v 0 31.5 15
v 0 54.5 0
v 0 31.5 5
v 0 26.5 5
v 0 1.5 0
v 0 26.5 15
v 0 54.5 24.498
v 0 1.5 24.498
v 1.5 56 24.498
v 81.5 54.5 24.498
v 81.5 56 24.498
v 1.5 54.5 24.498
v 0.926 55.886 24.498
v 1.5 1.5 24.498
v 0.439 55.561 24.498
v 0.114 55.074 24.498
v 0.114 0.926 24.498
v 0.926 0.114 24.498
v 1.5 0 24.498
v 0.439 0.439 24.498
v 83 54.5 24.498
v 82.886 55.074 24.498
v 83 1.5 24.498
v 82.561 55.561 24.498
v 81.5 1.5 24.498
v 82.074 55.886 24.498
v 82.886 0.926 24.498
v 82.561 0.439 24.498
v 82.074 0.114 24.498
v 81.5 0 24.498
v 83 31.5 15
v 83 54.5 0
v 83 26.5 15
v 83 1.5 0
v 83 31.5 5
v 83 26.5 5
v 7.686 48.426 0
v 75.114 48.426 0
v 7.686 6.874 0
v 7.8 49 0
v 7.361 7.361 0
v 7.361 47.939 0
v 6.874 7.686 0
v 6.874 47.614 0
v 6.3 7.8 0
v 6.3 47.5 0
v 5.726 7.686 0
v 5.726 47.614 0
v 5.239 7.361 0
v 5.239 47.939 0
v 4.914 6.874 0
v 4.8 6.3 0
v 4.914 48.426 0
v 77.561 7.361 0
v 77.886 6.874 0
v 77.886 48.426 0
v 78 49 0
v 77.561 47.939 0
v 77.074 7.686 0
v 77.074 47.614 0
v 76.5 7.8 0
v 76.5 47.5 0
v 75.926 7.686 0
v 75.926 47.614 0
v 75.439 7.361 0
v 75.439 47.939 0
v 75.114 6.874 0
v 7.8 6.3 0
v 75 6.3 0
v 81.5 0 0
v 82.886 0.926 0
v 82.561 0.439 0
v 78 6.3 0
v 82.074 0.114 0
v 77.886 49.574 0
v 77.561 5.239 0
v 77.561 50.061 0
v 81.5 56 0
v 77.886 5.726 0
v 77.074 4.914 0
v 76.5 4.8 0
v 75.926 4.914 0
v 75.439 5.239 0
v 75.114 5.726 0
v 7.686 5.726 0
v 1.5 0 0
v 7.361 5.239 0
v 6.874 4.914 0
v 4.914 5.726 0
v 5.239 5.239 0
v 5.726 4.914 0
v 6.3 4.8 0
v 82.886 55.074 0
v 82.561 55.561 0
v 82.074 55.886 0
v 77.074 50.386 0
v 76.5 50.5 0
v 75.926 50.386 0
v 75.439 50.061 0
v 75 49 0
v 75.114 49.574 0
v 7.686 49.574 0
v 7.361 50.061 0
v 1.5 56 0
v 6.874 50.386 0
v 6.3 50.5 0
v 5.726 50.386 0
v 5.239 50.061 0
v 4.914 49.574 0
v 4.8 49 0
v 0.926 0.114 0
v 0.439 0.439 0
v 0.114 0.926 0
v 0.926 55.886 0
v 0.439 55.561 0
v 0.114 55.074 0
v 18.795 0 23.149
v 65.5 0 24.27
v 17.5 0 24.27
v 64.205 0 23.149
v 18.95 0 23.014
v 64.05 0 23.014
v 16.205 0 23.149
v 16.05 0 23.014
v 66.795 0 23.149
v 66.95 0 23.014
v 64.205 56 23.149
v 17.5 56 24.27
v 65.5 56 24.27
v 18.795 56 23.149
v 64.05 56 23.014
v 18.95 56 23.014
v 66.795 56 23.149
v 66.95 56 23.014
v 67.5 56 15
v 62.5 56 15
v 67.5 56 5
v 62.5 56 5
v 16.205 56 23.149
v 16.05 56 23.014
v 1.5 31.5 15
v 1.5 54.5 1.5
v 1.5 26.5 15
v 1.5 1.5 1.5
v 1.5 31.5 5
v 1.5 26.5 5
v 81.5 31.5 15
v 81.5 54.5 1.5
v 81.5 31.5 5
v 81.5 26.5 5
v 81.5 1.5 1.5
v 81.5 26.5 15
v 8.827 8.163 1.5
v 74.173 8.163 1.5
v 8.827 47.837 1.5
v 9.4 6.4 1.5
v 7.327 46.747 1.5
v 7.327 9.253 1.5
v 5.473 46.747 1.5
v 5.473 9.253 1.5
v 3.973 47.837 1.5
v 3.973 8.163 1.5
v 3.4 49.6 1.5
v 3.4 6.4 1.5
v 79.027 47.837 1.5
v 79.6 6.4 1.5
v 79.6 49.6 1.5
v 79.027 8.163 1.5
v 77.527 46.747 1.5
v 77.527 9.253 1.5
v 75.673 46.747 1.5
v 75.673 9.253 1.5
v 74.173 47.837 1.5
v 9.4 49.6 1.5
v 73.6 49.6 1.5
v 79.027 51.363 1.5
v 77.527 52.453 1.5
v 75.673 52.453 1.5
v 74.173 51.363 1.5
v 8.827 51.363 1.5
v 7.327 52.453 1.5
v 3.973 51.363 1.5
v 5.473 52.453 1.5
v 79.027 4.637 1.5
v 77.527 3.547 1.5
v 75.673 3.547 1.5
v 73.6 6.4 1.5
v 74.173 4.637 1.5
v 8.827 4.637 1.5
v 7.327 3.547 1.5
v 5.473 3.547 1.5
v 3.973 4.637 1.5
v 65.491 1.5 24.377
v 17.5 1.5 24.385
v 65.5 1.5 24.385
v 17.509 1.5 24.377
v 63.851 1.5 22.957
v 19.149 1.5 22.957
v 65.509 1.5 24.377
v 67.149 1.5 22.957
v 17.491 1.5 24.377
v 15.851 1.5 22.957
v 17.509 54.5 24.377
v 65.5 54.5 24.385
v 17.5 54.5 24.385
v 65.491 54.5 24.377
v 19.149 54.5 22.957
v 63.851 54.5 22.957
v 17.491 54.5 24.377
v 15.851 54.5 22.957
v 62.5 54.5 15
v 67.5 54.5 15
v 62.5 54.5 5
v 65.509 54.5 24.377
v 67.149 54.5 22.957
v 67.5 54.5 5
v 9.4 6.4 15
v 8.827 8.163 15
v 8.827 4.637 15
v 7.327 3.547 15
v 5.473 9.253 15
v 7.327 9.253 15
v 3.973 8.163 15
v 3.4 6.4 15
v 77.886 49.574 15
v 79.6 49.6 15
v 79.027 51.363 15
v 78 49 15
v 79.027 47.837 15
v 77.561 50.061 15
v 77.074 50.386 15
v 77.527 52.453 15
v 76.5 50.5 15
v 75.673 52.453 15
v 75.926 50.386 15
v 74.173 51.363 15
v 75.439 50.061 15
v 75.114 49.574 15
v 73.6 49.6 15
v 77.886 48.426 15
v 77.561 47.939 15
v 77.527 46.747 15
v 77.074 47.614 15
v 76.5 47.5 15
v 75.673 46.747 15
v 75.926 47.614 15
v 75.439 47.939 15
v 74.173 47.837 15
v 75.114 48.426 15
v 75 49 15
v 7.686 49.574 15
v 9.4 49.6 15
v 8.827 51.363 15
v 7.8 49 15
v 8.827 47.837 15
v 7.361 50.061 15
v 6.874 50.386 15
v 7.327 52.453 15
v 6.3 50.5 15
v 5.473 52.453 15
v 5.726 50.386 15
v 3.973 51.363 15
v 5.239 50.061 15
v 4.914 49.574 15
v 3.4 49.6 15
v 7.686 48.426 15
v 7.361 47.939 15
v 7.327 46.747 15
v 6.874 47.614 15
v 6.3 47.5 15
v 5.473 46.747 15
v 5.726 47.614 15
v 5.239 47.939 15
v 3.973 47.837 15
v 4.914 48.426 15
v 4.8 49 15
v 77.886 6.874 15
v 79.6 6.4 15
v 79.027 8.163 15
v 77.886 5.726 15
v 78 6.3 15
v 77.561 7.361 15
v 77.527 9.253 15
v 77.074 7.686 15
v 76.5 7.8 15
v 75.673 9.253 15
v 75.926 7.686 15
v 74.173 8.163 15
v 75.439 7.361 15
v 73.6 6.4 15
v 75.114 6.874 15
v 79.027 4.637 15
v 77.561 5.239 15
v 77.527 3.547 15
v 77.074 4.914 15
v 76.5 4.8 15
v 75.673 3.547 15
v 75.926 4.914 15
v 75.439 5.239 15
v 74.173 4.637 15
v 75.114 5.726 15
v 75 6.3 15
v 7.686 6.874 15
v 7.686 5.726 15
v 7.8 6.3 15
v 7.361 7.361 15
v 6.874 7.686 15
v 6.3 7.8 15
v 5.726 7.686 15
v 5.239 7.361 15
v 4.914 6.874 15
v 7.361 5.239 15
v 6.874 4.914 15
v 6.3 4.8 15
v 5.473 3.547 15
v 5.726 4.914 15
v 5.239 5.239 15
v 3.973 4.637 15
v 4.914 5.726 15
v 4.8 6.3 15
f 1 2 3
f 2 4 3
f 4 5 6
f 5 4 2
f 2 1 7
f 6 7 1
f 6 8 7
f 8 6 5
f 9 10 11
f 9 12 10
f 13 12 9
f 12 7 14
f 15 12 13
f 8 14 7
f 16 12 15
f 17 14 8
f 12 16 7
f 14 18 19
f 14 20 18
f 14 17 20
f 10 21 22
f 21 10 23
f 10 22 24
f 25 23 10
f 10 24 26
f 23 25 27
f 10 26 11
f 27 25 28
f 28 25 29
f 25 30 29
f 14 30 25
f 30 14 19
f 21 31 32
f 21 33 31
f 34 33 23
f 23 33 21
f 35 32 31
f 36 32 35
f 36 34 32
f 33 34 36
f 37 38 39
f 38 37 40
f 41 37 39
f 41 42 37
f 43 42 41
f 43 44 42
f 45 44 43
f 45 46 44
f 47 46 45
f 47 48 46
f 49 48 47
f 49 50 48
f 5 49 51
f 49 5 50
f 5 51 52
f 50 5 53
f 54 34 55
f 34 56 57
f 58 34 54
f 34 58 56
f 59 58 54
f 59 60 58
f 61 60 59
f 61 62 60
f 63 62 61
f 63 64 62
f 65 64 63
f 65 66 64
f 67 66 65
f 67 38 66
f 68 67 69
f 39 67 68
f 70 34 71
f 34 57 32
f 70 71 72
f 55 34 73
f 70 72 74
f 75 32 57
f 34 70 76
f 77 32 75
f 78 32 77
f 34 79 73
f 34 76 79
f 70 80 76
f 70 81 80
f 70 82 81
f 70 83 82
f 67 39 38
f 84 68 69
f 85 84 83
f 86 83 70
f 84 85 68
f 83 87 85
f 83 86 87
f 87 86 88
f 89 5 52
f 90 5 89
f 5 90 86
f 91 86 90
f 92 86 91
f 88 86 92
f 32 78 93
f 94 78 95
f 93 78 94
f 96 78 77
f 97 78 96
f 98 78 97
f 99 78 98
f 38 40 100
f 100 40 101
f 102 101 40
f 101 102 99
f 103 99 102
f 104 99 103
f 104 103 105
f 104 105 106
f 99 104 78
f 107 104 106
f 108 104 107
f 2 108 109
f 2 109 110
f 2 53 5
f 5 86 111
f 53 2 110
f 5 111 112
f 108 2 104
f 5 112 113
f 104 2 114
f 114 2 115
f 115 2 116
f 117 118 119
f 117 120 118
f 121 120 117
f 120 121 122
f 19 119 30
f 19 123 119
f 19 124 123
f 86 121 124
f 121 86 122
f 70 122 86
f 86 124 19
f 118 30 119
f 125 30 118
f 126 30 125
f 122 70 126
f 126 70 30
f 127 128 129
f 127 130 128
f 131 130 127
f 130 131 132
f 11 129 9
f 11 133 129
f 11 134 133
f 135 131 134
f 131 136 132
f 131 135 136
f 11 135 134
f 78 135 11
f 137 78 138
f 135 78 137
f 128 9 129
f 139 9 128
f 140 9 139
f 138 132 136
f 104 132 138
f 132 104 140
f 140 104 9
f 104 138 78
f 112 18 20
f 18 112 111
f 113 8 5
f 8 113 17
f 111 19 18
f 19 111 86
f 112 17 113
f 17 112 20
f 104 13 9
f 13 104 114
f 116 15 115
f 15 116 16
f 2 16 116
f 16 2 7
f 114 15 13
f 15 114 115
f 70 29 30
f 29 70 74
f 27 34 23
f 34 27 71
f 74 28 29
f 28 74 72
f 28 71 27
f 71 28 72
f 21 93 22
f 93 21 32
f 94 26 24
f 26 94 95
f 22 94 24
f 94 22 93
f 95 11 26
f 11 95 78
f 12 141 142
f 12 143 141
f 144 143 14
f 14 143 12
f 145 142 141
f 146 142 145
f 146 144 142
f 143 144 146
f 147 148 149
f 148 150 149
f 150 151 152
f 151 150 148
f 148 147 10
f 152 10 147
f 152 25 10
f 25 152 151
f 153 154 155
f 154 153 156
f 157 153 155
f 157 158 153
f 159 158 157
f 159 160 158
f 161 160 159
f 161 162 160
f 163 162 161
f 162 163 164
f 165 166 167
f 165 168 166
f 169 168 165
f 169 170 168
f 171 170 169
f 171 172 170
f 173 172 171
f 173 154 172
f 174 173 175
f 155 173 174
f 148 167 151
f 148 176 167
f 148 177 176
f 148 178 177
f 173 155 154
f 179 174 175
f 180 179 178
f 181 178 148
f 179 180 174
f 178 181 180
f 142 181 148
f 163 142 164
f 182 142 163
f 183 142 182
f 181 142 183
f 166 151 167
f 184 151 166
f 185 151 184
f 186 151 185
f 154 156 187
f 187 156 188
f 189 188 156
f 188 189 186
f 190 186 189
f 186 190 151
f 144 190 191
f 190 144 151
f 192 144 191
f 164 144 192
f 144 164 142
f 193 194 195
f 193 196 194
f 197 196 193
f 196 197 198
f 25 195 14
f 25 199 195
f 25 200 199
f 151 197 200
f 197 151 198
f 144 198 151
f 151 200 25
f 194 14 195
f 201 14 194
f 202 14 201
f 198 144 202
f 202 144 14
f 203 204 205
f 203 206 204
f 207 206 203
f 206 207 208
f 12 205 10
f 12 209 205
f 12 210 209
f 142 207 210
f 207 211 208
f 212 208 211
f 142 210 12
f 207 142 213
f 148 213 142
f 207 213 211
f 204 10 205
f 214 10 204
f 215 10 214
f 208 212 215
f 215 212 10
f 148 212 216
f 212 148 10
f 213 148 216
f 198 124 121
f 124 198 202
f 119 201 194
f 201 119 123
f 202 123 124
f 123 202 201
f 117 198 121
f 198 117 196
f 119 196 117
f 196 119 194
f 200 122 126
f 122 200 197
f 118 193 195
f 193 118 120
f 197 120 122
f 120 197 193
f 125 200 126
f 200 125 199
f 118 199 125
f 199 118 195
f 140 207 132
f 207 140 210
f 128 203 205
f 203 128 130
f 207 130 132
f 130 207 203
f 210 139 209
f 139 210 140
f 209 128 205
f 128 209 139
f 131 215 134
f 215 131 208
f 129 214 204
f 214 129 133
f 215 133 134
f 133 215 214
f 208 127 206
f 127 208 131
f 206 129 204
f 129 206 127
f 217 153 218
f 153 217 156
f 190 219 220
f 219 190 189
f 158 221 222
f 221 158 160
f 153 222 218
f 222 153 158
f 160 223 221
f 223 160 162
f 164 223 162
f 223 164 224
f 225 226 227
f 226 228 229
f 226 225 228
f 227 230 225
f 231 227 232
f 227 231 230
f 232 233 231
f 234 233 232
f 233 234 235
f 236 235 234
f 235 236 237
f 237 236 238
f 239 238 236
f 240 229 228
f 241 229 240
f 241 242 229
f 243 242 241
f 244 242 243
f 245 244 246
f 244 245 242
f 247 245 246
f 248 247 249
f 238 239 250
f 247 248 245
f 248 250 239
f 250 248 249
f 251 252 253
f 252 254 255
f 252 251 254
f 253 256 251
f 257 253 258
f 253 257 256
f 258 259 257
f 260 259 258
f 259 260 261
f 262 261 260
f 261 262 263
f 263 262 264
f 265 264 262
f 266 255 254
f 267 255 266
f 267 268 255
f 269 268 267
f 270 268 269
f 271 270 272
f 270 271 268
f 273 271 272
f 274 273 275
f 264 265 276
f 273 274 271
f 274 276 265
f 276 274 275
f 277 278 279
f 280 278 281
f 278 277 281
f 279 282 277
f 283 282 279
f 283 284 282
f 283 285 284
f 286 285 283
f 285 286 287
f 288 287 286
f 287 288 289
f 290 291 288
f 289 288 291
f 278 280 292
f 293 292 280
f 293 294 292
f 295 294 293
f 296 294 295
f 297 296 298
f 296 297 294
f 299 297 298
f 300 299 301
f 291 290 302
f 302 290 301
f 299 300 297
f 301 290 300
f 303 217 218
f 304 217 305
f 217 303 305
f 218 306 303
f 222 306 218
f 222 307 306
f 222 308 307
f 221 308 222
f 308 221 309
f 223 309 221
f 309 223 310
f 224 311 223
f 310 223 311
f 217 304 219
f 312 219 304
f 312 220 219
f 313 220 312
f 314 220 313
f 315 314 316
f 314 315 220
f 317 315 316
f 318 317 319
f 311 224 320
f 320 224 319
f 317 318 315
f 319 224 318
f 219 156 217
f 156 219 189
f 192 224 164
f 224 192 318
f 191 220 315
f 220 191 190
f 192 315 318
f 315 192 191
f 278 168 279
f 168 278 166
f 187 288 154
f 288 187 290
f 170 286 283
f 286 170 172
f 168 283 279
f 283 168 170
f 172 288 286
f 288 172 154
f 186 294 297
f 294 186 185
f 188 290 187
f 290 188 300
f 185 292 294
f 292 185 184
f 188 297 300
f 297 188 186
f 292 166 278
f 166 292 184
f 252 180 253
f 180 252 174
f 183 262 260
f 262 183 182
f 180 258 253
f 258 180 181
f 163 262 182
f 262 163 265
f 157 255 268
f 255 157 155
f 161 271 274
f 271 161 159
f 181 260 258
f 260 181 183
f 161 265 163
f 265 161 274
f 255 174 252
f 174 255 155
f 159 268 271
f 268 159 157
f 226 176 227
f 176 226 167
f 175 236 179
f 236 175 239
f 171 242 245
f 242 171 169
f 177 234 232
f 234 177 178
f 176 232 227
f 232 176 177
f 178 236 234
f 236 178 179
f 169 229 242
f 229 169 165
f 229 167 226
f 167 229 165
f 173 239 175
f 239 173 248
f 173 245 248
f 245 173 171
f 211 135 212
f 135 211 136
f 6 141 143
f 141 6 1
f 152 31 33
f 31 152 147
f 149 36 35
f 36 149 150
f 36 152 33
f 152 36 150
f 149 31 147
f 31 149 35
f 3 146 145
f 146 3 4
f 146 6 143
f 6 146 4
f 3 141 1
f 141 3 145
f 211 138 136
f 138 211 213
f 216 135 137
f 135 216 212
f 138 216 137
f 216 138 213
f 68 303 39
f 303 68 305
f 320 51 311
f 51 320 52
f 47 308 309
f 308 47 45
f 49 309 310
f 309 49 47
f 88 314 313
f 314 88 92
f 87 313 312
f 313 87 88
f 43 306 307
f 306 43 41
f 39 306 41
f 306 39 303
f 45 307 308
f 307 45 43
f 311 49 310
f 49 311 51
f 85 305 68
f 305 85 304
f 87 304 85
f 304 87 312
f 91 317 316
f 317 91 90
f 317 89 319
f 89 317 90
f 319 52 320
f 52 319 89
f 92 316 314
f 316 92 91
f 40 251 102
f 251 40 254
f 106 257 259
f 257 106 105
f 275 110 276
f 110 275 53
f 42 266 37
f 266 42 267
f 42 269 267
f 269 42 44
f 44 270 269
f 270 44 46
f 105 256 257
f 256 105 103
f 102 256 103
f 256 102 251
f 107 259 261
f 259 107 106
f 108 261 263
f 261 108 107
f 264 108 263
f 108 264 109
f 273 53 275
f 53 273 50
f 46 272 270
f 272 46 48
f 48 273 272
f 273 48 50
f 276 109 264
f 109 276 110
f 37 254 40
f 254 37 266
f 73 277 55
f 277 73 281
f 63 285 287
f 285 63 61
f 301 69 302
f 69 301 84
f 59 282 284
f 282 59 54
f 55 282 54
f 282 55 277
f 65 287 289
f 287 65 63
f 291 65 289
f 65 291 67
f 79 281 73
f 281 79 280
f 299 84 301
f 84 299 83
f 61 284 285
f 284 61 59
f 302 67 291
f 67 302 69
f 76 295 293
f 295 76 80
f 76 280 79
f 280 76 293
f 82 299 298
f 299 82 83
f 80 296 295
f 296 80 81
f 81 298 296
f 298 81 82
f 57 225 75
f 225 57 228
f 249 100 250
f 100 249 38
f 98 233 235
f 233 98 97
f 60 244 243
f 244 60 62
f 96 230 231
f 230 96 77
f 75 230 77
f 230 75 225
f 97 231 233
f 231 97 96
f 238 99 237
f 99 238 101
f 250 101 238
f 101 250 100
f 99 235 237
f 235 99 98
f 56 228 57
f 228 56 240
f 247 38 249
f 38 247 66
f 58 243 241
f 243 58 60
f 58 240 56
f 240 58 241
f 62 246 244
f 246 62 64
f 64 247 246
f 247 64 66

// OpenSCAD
thickness=1.5; 


module housing_tray( thickness, innerSize ) {
    translate([1,1,1]*thickness)
    difference()
    {
        union(){
            translate([1,0,1]*-thickness)
                cube(innerSize + [2,0,0.999]*thickness);
            translate([0,1,1]*-thickness)
                cube(innerSize + [0,2,0.999]*thickness);
            translate([0,0,-thickness])
                cylinder(r=thickness, h=innerSize.z+0.999*thickness, $fn=16);
            translate([0,innerSize.y,-thickness])
                cylinder(r=thickness, h=innerSize.z+0.999*thickness, $fn=16);
            translate([innerSize.x,0,-thickness])
                cylinder(r=thickness, h=innerSize.z+0.999*thickness, $fn=16);
            translate([innerSize.x,innerSize.y,-thickness])
                cylinder(r=thickness, h=innerSize.z+0.999*thickness, $fn=16);
        } 
        
        cube(innerSize);   
                  
             translate([innerSize.x/5,0.01,thickness/sqrt(3)/2+innerSize.z-thickness])
                   scale([2.2,1.1,1.1])
                   rotate([0,-90,90])
                   cylinder(r1=thickness/sqrt(3), r2=thickness/2, h=thickness*1.01, $fn=3);
             
             translate([innerSize.x*4/5,0.01,thickness/sqrt(3)/2+innerSize.z-thickness])
                   scale([2.2,1.1,1.1])  
                   rotate([0,-90,90])
                   cylinder(r1=thickness/sqrt(3), r2=thickness/2, h=thickness*1.01, $fn=3);
                   
            translate([innerSize.x/5,innerSize.y-0.01,thickness/sqrt(3)/2+innerSize.z-thickness])     
                   scale([2.2,1.1,1.1])
                   rotate([0,-90,-90])
                   cylinder(r1=thickness/sqrt(3), r2=thickness/2, h=thickness*1.01, $fn=3);
             
             translate([innerSize.x*4/5,innerSize.y-0.01,thickness/sqrt(3)/2+innerSize.z-thickness])
                   scale([2.2,1.1,1.1])  
                   rotate([0,-90,-90])
               cylinder(r1=thickness/sqrt(3), r2=thickness/2, h=thickness*1.01, $fn=3);
     
    }
}

    module housing_lid(thickness, innerSize) {
    union(){
            cube([innerSize.x, innerSize.y, thickness] );                
             translate([innerSize.x/5,0,thickness/sqrt(3)/2])   
                   scale([2,1,1])
                   rotate([0,-90,90])
                   cylinder(r1=thickness/sqrt(3), r2=thickness/2, h=thickness*1.01, $fn=3);
             
             translate([innerSize.x*4/5,0,thickness/sqrt(3)/2])    
                   scale([2,1,1])  
                   rotate([0,-90,90])
                   cylinder(r1=thickness/sqrt(3), r2=thickness/2, h=thickness*1.01, $fn=3);
                   
            translate([innerSize.x/5,innerSize.y,thickness/sqrt(3)/2])   
                   scale([2,1,1])
                   rotate([0,-90,-90])
                   cylinder(r1=thickness/sqrt(3), r2=thickness/2, h=thickness*1.01, $fn=3);
             
             translate([innerSize.x*4/5,innerSize.y,thickness/sqrt(3)/2])    
                   scale([2,1,1])  
                   rotate([0,-90,-90])
               cylinder(r1=thickness/sqrt(3), r2=thickness/2, h=thickness*1.01, $fn=3);
     
        }
    
}

module thermostat() {
// pcb
    color([0,0.1,0.5,0.5])
    cube([78,51.2,1.5]);
// cable guides
    color([0,0.5,0.5,0.5]) {
        translate([70, 24, -10])
            cube([20,5,10]);
        
        translate([-10, 24, -10])
            cube([20,5,10]);
        
        translate([60, 43, -10])
            cube([5,20,10]);
    }
// displays
    color([0.7,0.7,0.7,0.5]){
        translate([10, 36, 1.5])
            cube([16,15,8]);
        translate([26, 30, 1.5])
            cube([26,21,8]);        
        translate([51, 36, 1.5])
            cube([16,15,8]);
    }
// leds
    color([0.7,0,0,0.5]){
        translate([14, 32.5, 1.5])
            cylinder(r=2.5,h=8, $fn=16);
    } 
    color([0,0.7,0,0.5]){
        translate([63.5, 32.5, 1.5])
            cylinder(r=2.5,h=8, $fn=16);
    } 
// buttons
    color([0.1,0.1,0.1,0.5]){
        translate([14, 22, 1.6])
            cylinder(r=2.5,h=10, $fn=16);
        translate([24.9, 22, 1.5])
            cylinder(r=2.5,h=10, $fn=16);
        translate([52.8, 22, 1.5])
            cylinder(r=2.5,h=10, $fn=16);
        translate([63.5, 22, 1.5])
            cylinder(r=2.5,h=10, $fn=16);
    } 
    
    
// mounting holes
    color([0.7,0.7,0.7,0.5]){
        translate([3.8, 3.8, 1.5])
            cylinder(r=1.5,h=100, center=true, $fn=16);
        translate([3.8, 46.5, 1.5])
            cylinder(r=1.5,h=100, center=true, $fn=16);
        translate([74, 3.8, 1.5])
            cylinder(r=1.5,h=100, center=true, $fn=16);
        translate([74, 46.5, 1.5])
            cylinder(r=1.5,h=100, center=true, $fn=16);
    } 
    
}

if($preview)
{     
    translate([thickness+1, thickness+1, pcbheight])
   % thermostat();
}

size = [80,53,23];
pcbheight = 15;
standoff = 6.4;
difference(){
    union(){
        housing_tray(thickness, size);
        translate([standoff,standoff,0]) 
            cylinder( r=3, h=pcbheight);
        translate([size.x-standoff + 2*thickness,standoff,0]) 
            cylinder( r=3, h=pcbheight);
        translate([standoff,size.y-standoff+ 2*thickness,0]) 
            cylinder( r=3, h=pcbheight);
        translate([size.x-standoff+ 2*thickness,size.y-standoff+ 2*thickness,0]) 
            cylinder( r=3, h=pcbheight);
    }
    
    translate([thickness+1, thickness+1, pcbheight])
        thermostat();
}/*/
    
translate([0,60,0])
difference(){
    housing_lid(thickness, size);
    translate([1,1, -5])
        thermostat();
}
*/
  
